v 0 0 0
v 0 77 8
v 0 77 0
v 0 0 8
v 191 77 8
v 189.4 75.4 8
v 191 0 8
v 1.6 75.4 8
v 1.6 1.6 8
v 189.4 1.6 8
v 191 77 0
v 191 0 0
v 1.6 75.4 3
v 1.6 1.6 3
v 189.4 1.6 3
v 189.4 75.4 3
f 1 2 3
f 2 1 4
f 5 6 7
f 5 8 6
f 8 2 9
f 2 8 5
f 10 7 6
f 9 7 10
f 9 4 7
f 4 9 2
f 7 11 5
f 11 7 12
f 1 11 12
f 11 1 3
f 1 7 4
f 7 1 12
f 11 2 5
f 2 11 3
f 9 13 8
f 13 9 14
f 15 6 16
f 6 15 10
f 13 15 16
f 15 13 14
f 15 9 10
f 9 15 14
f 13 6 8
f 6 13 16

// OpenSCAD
L=185;
W=71;
H=38;

difference() {
  cube([L+6,W+6,8]);

  translate([1.6,1.6,3])
  cube([L+2.8,W+2.8,10+8]);
  
    /*
  translate([0,(W+8)*1/4,7])
  rotate([0,90,0])
  cylinder(d=2,h=10,$center=true, $fn=16);

  translate([0,(W+8)*3/4,7])
  rotate([0,90,0])
  cylinder(d=2,h=10,$center=true, $fn=16);
    
  translate([L,(W+8)*1/4,7])
  rotate([0,90,0])
  cylinder(d=2,h=10,$center=true, $fn=16);

  translate([L,(W+8)*3/4,7])
  rotate([0,90,0])
  cylinder(d=2,h=10,$center=true, $fn=16);
    
  translate([(W+8)*1/4,3*W,7])
  rotate([90,0,0])
  cylinder(d=2,h=6*W,$center=true, $fn=16);

  translate([(L+8)-(W+8)*1/4,3*W,7])
  rotate([90,0,0])
  cylinder(d=2,h=6*W,$center=true, $fn=16);
  
  translate([(L+8)*1/2,3*W,7])
  rotate([90,0,0])
  cylinder(d=2,h=6*W,$center=true, $fn=16);
  */
}
